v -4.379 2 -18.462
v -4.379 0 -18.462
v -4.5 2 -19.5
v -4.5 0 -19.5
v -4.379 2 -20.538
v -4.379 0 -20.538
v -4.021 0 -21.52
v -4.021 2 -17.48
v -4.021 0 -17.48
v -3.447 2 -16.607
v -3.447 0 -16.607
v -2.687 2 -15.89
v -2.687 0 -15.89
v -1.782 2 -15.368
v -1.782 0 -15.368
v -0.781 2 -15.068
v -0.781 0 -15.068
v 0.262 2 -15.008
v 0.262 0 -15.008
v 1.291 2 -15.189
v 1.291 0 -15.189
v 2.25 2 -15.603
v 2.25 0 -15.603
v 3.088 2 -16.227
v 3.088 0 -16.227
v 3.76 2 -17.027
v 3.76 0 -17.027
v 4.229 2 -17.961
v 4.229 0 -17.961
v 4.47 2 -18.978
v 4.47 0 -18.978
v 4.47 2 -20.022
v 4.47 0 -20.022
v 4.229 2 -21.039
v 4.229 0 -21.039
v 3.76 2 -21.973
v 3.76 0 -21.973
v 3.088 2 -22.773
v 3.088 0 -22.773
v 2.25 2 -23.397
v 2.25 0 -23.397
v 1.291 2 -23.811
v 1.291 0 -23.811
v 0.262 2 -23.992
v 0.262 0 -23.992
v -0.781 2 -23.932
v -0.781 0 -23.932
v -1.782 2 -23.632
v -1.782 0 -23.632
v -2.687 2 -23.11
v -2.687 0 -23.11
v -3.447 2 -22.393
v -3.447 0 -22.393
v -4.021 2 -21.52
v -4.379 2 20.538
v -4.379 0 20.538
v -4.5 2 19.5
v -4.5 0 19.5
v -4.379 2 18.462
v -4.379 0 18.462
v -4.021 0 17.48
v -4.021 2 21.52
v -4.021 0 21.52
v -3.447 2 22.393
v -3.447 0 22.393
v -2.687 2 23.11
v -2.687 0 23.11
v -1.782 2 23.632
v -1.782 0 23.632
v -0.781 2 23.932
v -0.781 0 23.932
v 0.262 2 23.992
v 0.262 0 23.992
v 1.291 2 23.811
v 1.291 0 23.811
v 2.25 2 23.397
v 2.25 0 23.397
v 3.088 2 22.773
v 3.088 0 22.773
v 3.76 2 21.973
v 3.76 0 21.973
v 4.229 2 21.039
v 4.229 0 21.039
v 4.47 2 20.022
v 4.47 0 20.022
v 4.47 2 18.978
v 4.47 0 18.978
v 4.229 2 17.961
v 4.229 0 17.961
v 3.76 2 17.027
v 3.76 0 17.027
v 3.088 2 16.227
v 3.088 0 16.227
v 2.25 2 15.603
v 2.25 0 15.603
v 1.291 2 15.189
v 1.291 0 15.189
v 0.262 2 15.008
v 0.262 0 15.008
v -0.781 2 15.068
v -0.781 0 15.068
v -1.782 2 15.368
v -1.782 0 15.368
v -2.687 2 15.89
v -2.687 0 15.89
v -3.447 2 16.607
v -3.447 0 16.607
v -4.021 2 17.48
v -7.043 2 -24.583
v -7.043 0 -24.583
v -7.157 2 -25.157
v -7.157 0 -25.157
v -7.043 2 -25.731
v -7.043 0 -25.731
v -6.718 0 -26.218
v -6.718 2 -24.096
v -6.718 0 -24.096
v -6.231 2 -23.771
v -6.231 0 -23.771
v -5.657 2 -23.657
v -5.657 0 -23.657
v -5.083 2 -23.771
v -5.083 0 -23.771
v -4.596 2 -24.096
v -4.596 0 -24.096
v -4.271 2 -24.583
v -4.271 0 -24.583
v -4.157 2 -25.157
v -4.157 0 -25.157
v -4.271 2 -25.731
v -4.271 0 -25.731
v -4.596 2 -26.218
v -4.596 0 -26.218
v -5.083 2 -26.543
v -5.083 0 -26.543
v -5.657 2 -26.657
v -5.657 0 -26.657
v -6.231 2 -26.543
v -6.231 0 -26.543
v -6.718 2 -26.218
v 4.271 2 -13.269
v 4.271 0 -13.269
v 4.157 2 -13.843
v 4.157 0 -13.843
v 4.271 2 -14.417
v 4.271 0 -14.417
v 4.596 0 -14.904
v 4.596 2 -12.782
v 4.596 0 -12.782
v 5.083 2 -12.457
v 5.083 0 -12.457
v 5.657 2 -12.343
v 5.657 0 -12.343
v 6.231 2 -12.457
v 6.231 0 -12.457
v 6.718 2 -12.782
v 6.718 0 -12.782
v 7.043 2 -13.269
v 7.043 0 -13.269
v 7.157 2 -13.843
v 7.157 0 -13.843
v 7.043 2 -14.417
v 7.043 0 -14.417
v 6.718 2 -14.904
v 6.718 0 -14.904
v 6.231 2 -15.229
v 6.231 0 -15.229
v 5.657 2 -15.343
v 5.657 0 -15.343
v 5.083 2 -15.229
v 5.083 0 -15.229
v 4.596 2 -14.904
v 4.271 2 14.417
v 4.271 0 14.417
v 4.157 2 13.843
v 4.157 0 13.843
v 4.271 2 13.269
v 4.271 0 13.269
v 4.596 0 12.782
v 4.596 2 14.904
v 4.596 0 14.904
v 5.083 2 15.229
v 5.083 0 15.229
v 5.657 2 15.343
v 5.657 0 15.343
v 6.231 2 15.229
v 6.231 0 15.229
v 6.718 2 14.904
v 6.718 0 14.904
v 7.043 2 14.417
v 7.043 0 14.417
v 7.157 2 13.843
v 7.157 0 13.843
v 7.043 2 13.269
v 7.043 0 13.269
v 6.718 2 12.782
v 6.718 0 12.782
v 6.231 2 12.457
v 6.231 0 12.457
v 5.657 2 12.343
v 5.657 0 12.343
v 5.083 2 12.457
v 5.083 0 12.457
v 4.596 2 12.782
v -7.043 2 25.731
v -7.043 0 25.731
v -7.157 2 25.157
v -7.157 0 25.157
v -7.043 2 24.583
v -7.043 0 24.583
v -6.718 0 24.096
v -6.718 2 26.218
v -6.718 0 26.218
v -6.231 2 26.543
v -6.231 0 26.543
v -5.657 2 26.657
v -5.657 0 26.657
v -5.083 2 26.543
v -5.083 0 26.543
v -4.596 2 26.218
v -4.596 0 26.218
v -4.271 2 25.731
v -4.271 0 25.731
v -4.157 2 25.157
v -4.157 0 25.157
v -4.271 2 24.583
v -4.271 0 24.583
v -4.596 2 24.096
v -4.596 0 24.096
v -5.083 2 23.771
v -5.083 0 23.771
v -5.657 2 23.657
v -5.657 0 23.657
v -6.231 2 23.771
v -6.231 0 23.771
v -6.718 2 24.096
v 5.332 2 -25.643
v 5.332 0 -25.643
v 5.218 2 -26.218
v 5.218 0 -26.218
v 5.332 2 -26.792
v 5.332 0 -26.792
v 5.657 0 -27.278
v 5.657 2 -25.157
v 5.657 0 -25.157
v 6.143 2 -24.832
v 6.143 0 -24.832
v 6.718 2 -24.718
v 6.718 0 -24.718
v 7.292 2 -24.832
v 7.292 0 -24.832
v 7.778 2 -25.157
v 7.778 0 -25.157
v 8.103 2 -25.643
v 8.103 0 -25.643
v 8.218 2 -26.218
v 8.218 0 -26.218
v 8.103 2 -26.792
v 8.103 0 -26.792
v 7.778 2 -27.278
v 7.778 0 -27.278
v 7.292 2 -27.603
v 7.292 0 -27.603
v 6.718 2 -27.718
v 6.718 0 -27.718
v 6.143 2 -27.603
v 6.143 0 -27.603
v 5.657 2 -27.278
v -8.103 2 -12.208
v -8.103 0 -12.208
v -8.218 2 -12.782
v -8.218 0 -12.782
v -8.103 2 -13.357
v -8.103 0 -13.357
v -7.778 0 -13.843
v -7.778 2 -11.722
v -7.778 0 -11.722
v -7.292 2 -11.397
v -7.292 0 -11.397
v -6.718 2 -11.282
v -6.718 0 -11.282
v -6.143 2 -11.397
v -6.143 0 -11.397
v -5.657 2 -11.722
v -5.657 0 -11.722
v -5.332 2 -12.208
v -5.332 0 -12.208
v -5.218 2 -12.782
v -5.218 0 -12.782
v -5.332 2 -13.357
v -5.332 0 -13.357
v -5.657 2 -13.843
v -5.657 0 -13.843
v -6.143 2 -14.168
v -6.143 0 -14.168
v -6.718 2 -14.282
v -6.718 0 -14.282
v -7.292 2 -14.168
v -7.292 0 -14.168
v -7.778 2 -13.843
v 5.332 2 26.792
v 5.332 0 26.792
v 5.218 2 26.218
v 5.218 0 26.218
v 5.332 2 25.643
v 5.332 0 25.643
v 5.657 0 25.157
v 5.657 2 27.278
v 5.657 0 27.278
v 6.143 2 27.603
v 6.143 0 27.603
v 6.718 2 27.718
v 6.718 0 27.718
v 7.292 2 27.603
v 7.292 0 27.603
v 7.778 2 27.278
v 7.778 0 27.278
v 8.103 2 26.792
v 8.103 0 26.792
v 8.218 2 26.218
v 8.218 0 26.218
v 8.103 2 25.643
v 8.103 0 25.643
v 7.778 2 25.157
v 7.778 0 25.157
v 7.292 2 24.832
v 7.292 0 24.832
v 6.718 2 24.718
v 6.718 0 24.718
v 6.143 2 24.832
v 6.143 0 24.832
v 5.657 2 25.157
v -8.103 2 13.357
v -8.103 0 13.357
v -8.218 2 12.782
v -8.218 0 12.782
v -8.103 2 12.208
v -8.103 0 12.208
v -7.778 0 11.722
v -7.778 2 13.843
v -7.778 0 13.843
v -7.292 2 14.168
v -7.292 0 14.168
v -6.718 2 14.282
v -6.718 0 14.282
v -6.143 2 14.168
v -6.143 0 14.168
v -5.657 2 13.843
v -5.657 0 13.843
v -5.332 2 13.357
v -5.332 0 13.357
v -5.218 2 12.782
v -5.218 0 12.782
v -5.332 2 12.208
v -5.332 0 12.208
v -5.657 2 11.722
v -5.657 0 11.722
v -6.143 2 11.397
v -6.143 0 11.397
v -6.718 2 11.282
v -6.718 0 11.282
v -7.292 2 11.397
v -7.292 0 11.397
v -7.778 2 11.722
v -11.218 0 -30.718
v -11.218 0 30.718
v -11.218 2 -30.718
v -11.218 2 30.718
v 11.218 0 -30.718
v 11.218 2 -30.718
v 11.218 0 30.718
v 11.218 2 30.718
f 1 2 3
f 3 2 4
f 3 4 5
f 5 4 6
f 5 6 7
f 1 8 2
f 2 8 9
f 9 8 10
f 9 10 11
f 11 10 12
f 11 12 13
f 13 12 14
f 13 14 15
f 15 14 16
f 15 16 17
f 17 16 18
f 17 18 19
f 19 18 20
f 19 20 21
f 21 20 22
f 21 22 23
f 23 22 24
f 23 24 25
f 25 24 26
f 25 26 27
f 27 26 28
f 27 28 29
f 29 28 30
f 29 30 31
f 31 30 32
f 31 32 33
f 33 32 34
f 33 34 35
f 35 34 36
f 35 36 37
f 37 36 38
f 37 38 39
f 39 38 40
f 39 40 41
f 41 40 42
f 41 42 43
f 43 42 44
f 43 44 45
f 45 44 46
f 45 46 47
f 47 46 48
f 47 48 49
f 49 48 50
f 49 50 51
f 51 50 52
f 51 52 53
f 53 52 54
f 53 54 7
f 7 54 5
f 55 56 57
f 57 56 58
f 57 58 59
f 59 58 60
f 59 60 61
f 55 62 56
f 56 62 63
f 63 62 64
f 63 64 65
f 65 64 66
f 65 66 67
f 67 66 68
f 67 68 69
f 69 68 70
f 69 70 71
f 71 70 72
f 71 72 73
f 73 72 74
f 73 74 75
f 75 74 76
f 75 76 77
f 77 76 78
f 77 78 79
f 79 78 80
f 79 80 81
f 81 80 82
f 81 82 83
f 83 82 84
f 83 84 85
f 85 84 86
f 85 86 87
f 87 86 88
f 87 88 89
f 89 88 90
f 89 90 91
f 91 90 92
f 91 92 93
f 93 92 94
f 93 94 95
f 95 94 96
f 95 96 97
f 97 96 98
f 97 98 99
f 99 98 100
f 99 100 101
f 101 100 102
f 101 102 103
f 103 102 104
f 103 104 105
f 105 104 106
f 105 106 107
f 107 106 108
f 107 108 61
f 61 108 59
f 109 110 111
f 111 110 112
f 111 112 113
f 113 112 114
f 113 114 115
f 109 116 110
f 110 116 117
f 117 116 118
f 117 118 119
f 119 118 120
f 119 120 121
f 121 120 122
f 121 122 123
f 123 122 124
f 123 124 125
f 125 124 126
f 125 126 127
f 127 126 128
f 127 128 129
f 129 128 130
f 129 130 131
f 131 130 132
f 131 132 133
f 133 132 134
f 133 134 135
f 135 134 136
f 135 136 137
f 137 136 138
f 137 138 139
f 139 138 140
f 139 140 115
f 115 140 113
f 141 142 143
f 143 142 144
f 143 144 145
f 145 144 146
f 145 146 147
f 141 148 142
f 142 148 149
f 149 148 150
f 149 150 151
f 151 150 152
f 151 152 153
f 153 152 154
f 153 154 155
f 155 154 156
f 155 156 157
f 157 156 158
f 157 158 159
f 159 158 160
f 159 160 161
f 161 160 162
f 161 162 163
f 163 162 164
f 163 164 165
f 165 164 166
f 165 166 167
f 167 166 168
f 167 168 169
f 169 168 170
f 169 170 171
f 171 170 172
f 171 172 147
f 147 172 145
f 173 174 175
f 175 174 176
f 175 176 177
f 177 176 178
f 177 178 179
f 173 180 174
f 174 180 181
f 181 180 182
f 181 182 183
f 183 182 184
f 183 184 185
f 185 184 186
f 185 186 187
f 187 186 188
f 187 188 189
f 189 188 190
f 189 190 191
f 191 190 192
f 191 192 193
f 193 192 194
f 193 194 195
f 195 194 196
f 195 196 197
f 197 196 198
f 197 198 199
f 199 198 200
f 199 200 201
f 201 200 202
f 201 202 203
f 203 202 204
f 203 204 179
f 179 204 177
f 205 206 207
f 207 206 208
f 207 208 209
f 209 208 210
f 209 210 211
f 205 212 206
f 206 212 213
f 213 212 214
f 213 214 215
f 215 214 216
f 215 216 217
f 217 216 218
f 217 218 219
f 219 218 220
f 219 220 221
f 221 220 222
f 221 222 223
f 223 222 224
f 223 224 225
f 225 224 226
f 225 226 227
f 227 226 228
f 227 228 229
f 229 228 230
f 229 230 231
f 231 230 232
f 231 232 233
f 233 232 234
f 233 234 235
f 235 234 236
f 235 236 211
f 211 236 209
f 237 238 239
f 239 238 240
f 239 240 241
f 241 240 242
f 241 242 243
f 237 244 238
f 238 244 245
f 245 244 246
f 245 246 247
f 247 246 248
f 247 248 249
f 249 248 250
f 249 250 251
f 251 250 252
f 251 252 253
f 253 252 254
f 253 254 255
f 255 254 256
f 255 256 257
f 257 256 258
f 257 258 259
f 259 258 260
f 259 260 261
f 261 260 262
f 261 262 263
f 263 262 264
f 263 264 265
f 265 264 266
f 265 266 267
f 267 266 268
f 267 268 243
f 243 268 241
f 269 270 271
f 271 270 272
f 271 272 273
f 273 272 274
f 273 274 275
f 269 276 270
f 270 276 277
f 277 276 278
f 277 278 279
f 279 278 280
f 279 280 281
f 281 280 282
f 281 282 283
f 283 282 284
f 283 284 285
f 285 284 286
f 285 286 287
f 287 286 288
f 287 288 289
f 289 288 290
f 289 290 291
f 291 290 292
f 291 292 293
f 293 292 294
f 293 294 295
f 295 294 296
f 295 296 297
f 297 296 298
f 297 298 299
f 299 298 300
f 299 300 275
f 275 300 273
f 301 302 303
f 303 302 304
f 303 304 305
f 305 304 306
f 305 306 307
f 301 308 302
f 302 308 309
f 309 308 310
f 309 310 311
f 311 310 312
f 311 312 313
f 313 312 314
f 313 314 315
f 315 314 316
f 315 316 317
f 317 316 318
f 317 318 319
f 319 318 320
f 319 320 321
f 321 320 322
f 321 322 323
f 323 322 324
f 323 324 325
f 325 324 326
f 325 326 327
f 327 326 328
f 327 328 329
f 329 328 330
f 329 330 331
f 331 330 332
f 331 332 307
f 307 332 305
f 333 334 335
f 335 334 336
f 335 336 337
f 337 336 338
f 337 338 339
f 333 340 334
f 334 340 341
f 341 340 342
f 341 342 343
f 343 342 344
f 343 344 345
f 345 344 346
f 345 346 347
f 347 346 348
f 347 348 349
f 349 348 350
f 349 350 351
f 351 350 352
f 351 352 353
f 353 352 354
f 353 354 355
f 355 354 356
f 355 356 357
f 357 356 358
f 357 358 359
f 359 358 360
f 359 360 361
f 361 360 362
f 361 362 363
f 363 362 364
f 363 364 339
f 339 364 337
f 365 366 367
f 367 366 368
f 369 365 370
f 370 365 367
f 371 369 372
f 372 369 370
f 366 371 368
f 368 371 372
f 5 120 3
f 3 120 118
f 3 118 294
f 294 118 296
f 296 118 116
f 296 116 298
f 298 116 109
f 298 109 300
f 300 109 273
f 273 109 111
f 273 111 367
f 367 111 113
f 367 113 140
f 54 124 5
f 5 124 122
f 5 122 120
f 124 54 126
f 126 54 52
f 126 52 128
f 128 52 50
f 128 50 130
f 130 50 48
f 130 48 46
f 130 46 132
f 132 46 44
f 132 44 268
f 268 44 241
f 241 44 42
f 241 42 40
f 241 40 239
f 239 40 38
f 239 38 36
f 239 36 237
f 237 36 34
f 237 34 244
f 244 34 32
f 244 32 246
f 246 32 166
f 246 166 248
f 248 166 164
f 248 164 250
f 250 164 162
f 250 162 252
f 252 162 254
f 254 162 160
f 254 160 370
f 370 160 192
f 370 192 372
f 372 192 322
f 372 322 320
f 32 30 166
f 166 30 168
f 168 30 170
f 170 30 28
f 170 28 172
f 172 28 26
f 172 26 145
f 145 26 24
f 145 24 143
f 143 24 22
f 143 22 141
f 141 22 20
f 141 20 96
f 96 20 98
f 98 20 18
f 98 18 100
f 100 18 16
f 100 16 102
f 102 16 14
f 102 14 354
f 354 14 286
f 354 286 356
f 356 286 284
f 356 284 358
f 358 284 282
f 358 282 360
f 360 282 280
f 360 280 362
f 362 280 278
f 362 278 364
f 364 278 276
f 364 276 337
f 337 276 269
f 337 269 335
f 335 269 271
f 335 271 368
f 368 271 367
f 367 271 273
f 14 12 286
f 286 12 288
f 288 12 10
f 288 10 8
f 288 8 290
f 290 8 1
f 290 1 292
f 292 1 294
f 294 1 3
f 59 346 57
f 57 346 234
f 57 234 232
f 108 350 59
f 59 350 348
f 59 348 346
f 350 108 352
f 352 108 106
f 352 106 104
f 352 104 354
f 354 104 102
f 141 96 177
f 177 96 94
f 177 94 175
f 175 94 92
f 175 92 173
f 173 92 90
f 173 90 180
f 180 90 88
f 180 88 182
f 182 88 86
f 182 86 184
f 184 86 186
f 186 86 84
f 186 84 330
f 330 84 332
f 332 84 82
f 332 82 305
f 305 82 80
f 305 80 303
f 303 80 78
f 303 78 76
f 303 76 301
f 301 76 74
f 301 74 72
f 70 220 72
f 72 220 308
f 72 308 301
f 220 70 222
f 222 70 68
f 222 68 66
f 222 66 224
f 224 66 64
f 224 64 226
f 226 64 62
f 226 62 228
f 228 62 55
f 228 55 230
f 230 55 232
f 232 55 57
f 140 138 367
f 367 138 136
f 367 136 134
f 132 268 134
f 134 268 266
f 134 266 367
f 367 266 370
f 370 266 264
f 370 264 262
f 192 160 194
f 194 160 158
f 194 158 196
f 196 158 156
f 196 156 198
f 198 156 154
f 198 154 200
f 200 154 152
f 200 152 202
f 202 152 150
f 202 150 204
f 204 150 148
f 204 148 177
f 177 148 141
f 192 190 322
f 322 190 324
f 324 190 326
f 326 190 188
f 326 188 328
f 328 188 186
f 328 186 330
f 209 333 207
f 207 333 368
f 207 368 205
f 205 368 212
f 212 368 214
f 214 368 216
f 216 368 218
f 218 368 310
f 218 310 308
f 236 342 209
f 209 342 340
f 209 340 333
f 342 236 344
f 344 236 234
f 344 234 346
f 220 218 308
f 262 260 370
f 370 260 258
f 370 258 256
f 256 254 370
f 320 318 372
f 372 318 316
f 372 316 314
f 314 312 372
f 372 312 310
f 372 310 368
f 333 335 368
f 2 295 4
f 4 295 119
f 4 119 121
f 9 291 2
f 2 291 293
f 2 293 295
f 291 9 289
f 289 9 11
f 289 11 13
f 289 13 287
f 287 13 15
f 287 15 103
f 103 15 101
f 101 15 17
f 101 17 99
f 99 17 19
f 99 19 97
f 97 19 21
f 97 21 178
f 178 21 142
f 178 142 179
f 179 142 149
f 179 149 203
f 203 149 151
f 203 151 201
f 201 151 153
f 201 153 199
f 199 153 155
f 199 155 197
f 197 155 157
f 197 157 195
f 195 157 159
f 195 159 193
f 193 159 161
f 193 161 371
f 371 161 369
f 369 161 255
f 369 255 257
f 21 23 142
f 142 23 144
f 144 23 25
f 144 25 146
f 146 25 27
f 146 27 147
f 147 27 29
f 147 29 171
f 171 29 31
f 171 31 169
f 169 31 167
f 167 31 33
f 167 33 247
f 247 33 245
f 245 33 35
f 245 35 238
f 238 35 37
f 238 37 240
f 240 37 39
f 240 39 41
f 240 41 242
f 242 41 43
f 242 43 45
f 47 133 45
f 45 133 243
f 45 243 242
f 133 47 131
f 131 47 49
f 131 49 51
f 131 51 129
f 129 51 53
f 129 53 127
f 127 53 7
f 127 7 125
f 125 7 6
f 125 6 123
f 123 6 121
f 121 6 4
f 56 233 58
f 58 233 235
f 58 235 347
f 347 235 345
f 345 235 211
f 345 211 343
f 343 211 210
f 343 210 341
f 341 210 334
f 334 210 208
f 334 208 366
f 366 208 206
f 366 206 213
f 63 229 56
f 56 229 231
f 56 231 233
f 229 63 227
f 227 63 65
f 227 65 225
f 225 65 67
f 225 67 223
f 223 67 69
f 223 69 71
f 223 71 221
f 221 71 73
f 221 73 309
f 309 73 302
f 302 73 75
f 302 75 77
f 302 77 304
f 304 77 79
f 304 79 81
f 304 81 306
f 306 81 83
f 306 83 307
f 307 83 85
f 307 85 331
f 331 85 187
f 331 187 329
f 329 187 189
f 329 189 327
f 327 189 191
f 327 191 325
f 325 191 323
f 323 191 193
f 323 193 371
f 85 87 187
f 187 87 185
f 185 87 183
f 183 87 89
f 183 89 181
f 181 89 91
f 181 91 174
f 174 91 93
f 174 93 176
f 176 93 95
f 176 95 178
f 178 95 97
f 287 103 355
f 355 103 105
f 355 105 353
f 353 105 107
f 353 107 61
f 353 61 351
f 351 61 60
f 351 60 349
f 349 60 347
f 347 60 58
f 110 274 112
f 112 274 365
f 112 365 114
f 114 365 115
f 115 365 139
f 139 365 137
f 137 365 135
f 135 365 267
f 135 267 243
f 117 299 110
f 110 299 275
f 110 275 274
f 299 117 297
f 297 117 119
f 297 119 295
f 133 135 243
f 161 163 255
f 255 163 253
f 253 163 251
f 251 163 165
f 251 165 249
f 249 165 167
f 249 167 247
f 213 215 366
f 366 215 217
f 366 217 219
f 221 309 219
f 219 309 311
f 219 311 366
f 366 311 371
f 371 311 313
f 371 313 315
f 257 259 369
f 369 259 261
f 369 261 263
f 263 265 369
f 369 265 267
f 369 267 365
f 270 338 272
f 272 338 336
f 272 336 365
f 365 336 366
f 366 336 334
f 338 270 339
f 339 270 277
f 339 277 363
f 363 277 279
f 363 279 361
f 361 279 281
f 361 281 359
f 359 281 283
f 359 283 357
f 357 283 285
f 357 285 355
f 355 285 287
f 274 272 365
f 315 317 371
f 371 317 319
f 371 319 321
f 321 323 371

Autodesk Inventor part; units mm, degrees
ref_plane "YZ Plane" through (0, 0, 0) normal (1, 0, 0) x (0, 1, 0)
ref_plane "XZ Plane" through (0, 0, 0) normal (0, 1, 0) x (-1, 0, 0)
ref_plane "XY Plane" through (0, 0, 0) normal (0, 0, 1) x (1, 0, 0)
sketch "Szkic1" plane through (0, 0, 0) normal (0, 1, 0) x (-1, 0, 0)
  line L0 (11.2175, 30.7175) -> (-11.2175, 30.7175)
  line L1 (-11.2175, 30.7175) -> (-11.2175, -30.7175)
  line L2 (11.2175, -30.7175) -> (11.2175, 30.7175)
  circle A0 centre (6.7175, 12.7825) radius 1.5
  circle A1 centre (-6.7175, 26.2175) radius 1.5
  circle A2 centre (0, 19.5) radius 4.5
  circle A3 centre (0, -19.5) radius 4.5
  circle A4 centre (6.7175, -12.7825) radius 1.5
  circle A5 centre (-6.7175, -26.2175) radius 1.5
  circle A6 centre (5.6569, 25.1569) radius 1.5
  circle A7 centre (-5.6569, 13.8431) radius 1.5
  circle A8 centre (-5.6569, -13.8431) radius 1.5
  circle A9 centre (5.6569, -25.1569) radius 1.5
  line L3 (11.2175, -30.7175) -> (-11.2175, -30.7175)
  point P0 (0, 0)
  point P1 (0, 10.7072)
  dimension "d0" = 3
  dimension "d1" = 3
  dimension "d3" = 0
  dimension "d8" = 9
  dimension "d10" = 9
  dimension "d11" = 3
  dimension "d12" = 3
  dimension "d20" = 19.5
  dimension "d21" = 39
  dimension "d26" = 3
  dimension "d27" = 3
  dimension "d28" = 3
  dimension "d29" = 3
  dimension "d30" = 6.7175
  dimension "d31" = 6.7175
  dimension "d32" = 6.7175
  dimension "d33" = 6.7175
  dimension "d34" = 6.7175
  dimension "d35" = 6.7175
  dimension "d36" = 6.7175
  dimension "d37" = 6.7175
  dimension "d38" = 5.6569
  dimension "d39" = 5.6569
  dimension "d40" = 5.6569
  dimension "d41" = 5.6569
  dimension "d42" = 5.6569
  dimension "d43" = 5.6569
  dimension "d44" = 5.6569
  dimension "d45" = 5.6569
  dimension "d48" = 4.5
  dimension "d50" = 4.5
  dimension "d51" = 4.5
  dimension "d52" = 4.5
extrude "Wyciągnięcie proste1" add sketch "Szkic1" along normal blind 2
properties part number "HolderV2"
